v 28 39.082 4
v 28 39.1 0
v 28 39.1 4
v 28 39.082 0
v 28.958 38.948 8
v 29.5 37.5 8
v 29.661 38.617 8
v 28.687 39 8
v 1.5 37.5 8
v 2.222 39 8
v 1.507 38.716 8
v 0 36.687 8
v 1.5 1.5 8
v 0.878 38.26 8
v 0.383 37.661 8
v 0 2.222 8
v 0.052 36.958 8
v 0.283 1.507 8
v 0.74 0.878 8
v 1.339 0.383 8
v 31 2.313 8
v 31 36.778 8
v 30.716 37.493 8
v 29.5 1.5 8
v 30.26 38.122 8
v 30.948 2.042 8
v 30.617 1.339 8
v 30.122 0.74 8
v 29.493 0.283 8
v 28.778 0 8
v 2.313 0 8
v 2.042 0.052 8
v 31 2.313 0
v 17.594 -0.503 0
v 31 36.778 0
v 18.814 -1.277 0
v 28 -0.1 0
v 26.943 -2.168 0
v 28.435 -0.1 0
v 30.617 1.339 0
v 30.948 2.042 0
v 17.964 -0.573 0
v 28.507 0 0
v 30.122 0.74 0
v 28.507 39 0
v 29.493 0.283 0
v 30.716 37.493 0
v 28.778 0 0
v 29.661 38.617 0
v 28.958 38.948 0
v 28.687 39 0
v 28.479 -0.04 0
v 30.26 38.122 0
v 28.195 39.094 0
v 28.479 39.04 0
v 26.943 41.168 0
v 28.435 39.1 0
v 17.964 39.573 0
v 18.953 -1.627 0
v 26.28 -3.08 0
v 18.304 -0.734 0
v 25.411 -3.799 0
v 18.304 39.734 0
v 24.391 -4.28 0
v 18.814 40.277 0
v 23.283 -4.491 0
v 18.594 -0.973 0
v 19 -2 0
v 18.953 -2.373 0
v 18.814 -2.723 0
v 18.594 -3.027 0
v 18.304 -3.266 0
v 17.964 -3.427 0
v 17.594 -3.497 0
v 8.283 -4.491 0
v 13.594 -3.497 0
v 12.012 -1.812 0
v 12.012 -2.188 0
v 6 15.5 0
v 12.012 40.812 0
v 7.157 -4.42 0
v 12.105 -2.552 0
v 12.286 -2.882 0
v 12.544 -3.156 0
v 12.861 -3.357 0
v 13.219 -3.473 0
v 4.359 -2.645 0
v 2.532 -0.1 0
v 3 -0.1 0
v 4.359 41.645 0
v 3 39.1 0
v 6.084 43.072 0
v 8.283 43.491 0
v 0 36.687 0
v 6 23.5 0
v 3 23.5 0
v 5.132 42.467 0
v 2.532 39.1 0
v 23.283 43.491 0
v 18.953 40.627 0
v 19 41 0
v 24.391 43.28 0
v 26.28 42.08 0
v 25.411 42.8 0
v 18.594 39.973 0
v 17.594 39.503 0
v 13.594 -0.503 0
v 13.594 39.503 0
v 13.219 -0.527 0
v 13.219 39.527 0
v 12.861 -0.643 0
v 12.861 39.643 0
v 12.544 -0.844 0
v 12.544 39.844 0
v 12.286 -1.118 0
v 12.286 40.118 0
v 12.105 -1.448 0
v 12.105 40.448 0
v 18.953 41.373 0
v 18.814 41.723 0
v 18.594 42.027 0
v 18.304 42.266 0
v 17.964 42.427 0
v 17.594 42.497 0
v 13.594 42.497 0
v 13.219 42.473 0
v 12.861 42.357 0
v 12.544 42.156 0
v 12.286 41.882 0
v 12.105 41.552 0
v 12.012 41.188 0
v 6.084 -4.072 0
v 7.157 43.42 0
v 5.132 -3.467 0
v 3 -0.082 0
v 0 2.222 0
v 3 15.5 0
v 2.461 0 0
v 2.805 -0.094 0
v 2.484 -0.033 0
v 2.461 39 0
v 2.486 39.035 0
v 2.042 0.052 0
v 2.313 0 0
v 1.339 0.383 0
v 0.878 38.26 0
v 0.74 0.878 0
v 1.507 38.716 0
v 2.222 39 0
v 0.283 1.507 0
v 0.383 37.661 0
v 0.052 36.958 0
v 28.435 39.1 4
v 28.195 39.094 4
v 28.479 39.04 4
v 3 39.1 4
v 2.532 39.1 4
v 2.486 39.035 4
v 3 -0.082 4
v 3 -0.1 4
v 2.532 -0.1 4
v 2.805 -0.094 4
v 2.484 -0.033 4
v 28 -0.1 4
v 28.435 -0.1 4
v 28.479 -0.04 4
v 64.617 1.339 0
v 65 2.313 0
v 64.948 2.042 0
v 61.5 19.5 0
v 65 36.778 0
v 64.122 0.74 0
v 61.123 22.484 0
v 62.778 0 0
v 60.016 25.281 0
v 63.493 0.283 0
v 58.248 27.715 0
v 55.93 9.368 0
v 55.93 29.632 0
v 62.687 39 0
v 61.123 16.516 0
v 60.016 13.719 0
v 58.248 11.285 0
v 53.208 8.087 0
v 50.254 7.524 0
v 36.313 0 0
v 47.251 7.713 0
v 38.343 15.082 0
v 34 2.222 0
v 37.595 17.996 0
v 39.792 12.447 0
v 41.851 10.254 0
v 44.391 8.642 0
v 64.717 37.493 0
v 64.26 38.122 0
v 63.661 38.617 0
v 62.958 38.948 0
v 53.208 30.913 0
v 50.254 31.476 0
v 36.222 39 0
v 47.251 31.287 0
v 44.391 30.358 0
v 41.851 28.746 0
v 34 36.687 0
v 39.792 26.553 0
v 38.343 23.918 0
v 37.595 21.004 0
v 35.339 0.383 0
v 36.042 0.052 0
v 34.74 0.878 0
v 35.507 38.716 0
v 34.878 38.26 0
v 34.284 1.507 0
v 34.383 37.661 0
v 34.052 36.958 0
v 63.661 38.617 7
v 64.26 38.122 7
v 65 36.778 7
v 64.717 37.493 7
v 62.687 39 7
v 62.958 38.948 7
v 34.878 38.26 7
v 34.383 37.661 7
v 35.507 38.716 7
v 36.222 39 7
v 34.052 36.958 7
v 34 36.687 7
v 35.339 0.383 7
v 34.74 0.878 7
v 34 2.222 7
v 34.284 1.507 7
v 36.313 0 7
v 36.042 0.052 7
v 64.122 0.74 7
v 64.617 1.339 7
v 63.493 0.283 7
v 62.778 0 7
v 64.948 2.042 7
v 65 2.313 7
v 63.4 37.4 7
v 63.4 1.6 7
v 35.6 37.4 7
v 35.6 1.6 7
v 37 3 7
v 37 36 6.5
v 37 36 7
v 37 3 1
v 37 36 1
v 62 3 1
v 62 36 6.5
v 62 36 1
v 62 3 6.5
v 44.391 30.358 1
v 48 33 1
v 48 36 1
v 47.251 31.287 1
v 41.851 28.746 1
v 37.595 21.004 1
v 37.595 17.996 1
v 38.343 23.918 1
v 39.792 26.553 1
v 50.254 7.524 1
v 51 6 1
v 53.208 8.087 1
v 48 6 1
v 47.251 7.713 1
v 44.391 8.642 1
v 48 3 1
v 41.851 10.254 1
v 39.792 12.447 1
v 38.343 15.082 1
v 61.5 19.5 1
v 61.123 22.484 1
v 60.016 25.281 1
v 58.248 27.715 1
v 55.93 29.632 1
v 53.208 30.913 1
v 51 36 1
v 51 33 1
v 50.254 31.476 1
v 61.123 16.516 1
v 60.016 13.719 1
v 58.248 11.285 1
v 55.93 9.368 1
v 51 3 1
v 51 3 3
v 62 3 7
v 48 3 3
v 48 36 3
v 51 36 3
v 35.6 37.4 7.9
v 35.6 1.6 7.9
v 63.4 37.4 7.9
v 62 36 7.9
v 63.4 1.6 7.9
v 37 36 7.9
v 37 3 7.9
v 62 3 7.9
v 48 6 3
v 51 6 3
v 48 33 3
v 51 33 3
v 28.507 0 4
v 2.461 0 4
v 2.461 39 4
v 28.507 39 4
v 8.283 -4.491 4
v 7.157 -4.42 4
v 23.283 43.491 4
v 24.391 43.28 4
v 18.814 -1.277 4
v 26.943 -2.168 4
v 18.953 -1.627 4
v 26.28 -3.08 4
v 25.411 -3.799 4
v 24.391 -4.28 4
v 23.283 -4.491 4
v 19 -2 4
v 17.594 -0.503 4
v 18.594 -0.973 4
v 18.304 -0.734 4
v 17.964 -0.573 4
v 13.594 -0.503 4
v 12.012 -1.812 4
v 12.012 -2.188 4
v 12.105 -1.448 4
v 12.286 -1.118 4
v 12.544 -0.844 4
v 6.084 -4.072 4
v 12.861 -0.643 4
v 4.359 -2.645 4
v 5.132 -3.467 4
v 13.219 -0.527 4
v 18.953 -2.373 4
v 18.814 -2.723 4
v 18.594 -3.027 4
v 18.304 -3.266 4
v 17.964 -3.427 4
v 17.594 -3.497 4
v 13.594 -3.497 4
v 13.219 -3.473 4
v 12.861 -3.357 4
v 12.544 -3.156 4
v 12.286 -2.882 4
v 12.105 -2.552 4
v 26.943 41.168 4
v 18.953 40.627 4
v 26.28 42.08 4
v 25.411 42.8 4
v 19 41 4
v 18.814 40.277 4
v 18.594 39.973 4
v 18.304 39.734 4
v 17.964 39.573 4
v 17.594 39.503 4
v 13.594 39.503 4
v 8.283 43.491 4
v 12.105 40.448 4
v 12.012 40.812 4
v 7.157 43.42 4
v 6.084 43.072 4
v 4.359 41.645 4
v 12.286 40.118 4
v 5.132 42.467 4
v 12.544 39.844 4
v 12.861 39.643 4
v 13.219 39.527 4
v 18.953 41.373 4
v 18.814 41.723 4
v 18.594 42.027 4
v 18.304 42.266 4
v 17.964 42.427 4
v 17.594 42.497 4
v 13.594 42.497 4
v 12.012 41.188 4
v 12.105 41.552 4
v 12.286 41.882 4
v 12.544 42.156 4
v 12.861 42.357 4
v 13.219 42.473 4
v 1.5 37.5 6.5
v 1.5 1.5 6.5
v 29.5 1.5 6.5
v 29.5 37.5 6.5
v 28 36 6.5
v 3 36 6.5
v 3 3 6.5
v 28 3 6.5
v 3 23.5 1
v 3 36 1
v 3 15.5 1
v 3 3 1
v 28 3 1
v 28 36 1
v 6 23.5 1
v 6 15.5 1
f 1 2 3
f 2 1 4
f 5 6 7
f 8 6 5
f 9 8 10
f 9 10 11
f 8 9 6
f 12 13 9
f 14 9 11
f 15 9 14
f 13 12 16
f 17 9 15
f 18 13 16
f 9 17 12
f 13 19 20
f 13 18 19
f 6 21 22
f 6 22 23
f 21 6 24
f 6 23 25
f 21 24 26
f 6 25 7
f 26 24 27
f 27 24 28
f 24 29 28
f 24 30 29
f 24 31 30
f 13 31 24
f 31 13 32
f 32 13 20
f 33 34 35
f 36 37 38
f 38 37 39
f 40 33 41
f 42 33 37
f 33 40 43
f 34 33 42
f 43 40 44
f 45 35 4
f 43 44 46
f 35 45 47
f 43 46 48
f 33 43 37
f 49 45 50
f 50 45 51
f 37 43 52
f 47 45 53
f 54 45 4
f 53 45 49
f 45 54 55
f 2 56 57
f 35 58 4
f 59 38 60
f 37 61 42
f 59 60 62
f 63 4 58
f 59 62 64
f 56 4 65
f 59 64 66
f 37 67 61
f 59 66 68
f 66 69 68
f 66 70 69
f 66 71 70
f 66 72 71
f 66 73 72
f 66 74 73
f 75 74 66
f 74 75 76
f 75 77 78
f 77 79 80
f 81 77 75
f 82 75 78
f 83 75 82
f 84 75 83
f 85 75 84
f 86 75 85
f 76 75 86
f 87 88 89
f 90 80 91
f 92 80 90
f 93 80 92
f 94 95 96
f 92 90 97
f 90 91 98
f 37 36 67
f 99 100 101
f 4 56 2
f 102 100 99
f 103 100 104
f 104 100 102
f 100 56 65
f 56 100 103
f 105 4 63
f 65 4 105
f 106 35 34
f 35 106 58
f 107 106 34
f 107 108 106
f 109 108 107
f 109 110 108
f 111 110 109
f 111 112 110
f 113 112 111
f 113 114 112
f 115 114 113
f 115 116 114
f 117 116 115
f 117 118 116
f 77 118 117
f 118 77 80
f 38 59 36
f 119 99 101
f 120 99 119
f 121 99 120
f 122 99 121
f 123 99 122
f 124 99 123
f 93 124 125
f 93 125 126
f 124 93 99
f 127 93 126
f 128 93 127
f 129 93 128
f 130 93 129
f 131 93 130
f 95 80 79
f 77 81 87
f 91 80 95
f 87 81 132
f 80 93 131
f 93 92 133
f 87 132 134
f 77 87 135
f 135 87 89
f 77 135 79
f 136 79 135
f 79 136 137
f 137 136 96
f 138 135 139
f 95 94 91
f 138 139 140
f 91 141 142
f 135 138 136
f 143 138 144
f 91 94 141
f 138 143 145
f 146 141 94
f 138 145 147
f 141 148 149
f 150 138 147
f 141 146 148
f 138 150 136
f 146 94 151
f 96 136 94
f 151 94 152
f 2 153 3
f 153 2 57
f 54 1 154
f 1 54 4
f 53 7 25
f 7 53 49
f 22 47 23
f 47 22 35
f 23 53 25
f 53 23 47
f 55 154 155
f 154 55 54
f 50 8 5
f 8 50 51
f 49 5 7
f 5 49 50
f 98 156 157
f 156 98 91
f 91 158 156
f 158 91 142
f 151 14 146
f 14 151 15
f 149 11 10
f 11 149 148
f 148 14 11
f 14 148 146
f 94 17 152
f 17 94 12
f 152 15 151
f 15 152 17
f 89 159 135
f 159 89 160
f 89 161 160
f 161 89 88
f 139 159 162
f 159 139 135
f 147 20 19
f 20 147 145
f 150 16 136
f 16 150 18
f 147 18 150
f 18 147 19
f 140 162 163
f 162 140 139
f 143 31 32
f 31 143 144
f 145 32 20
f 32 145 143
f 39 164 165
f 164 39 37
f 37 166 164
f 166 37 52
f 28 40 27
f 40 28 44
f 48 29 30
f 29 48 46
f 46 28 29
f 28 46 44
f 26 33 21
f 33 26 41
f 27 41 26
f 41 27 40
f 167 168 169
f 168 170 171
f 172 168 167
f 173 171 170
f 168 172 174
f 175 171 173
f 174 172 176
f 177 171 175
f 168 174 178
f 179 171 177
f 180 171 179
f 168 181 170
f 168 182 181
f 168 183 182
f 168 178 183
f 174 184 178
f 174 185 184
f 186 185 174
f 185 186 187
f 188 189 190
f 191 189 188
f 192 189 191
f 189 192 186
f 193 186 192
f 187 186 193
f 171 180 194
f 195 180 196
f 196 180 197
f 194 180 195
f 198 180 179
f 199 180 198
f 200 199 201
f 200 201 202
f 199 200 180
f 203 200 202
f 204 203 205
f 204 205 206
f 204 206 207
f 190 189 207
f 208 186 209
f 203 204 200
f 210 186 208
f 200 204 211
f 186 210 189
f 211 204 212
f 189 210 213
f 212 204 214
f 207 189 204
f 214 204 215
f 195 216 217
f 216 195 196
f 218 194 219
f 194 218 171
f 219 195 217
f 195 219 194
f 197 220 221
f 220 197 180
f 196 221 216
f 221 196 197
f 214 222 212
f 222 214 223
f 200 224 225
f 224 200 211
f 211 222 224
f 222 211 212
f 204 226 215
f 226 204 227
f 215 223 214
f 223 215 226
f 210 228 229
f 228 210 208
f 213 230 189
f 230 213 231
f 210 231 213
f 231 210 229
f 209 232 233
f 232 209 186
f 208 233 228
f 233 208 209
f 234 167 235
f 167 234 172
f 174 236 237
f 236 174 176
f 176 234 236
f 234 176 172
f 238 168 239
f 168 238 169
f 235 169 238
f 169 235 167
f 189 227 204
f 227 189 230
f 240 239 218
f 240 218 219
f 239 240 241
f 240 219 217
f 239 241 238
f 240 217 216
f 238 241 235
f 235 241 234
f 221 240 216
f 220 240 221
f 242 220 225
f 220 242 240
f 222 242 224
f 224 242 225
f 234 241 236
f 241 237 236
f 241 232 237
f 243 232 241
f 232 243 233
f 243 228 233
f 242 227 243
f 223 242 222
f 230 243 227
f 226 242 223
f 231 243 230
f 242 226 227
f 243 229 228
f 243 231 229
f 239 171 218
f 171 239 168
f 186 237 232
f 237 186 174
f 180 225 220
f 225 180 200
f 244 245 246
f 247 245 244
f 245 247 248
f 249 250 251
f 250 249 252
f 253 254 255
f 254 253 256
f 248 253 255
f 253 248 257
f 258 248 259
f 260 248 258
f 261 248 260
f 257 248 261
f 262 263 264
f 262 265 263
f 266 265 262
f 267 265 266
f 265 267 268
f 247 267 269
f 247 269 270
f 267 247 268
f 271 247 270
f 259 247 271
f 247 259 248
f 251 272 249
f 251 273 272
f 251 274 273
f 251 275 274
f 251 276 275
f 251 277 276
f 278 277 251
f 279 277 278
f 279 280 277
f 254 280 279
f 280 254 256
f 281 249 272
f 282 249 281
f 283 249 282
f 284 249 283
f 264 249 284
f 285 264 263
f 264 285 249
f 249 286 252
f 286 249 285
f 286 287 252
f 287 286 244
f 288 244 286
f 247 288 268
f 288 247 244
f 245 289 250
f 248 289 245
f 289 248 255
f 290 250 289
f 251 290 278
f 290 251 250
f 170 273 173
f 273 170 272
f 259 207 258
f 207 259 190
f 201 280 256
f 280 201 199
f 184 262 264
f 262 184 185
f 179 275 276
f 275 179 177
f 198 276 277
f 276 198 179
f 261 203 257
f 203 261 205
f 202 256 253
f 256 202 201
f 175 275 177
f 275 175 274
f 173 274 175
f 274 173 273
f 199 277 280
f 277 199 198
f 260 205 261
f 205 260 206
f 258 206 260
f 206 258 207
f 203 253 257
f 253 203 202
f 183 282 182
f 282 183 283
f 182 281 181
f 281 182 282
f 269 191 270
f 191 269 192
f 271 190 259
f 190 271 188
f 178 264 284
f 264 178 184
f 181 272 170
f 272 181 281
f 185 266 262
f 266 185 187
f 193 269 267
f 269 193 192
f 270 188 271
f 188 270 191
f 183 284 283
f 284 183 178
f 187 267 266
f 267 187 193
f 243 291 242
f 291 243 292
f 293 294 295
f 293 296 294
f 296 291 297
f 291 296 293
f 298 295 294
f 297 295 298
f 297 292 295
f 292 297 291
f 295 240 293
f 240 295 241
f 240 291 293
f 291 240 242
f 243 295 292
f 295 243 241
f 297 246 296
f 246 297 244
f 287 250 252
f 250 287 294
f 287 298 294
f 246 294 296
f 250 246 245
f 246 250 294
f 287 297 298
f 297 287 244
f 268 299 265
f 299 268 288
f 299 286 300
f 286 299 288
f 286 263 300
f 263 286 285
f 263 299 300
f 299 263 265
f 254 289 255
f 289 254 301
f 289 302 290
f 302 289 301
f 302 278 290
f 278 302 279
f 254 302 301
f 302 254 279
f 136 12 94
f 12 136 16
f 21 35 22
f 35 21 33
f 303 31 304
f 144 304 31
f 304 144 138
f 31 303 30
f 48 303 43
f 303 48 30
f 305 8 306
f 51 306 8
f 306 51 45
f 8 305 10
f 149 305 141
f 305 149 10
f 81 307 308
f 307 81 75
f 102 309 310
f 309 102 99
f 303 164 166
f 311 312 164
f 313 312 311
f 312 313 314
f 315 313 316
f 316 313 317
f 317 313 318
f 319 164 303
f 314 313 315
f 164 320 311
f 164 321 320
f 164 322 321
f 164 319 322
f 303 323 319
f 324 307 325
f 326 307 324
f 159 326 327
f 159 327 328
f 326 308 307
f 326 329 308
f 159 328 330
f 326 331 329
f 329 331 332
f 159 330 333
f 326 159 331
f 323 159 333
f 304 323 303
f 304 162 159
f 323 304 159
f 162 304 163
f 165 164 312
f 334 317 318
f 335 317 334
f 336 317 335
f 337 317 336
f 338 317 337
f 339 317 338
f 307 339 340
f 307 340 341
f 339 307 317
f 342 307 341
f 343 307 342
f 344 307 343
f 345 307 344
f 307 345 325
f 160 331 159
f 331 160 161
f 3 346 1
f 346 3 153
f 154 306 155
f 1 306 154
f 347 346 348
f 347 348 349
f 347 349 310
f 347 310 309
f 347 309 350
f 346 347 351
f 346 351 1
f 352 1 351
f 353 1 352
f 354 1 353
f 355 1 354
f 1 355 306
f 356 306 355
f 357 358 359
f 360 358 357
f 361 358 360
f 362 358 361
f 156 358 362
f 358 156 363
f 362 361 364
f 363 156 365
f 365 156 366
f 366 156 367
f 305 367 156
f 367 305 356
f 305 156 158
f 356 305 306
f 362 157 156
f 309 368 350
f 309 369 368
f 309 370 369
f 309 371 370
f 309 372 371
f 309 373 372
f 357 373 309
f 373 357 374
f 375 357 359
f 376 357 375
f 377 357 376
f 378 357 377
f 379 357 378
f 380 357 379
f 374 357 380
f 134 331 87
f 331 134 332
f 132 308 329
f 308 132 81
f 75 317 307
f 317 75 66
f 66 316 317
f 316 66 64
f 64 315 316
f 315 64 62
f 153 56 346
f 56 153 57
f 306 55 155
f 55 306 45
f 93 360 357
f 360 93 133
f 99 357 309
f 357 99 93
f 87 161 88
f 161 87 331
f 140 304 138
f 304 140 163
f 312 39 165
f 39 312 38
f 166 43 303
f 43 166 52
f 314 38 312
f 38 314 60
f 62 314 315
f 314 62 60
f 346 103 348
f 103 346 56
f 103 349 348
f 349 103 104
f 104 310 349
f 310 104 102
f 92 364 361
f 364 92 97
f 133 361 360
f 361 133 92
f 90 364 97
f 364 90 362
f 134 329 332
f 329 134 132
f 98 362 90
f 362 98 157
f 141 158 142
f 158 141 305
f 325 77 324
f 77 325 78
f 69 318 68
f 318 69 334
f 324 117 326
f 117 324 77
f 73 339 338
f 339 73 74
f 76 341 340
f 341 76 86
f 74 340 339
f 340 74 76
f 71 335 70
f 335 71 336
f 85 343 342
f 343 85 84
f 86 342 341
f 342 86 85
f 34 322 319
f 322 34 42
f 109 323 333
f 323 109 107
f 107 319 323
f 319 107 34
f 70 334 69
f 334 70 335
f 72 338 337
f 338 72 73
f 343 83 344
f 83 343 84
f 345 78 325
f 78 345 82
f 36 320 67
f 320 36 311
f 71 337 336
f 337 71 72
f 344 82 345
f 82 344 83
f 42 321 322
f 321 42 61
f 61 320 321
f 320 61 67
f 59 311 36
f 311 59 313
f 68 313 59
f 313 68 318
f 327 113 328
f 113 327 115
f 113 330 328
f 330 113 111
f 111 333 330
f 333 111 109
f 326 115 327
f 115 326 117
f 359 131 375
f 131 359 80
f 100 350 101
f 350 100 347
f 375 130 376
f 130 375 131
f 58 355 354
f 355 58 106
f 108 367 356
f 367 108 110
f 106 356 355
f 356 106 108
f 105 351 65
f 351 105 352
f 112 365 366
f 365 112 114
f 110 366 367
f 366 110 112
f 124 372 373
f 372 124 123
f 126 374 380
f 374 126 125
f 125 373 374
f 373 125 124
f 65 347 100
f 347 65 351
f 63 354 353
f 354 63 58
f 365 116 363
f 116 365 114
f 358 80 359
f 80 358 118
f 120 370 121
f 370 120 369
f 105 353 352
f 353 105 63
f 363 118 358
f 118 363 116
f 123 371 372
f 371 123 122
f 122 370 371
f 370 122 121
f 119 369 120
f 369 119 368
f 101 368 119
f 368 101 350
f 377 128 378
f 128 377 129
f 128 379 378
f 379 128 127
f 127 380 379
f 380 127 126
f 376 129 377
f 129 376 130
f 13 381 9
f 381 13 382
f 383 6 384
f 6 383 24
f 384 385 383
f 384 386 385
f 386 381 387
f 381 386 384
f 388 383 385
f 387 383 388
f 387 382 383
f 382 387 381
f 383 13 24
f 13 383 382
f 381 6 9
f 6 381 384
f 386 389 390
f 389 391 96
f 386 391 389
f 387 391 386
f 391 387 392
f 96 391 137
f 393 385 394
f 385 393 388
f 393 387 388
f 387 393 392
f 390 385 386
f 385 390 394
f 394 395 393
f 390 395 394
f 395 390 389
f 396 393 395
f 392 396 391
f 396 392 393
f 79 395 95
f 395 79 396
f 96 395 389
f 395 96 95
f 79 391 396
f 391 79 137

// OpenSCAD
// 2 piece case for PIR sensor SR501
// PCB volume size 33x25x14
// created by jegb 2014
// CC BY-NC-SA-3.0

wall_size = 3;
w = 25;
d = 33;
h = 8; //block material size, my stock is 8mm PE or Acrylic
pcb_h = 14/2; //this is the volume inside of each half
// assumes a wall on top/bottom of 1mm

gap= 3;
rad = 3; // soften edges

//show assembled
assy = false;
ears = true;
has_slot=true;

dxf=false;

module lip(l_h,l_w){
// to be differenced from the main body
	difference(){
		cube([w+2*l_w,d+2*l_w,l_h], center=false);
		translate([l_w,l_w,0]) cube([w,d,l_h], center=false);
	}

} //lip(1.5, 1.5);

module createSubtractor(h,radius) {
	difference(){ 
	cube([radius+0.1,radius+0.1,h]); 
	cylinder(h=h,r=radius+0.1,$fn = 25);
	} //+0.1 stops ghost edges
}

module slot(slot_l){ 
	hull(){ //slot
		translate([rad,0,0]) cylinder(h=h, r=rad/2, $fn=25);
		translate([slot_l-rad,0,0]) cylinder(h=h, r=rad/2, $fn=25);
	} // hull inside
} //slot(3, 15);

module ears(sep, ear_w, ear_l){ //sep is distance between ears
   hull(){
	hull(){
		cylinder(h=h/2, r=ear_w/2, $fn=25);
		translate([ear_l,0,0]) cylinder(h=h/2, r=ear_w/2, $fn=25);
	} // hull1

	translate([0,wall_size,0]) hull(){
		translate([-(w-ear_l-2*wall_size),0,0]) cylinder(h=h/2, r=rad/2+wall_size/2, $fn=25);
		translate([w-2*wall_size,0,0]) cylinder(h=h/2, r=rad/2+wall_size/2, $fn=25);
	} // hull2

	translate([0,d+wall_size,0]) hull(){
		translate([-(w-ear_l-2*wall_size),0,0]) cylinder(h=h/2, r=rad/2+wall_size/2, $fn=25);
		translate([w-2*wall_size,0,0]) cylinder(h=h/2, r=rad/2+wall_size/2, $fn=25);
	} // hull3

	translate([0,d+2*wall_size,0]) hull(){
		cylinder(h=h/2, r=ear_w/2, $fn=25);
		translate([ear_l,0,0]) cylinder(h=h/2, r=ear_w/2, $fn=25);
	} // hull4

	}
} //ears(d, 7, 15);


// bottom B side
module case_b(){

	difference(){
		union(){
		cube ([w+2*wall_size,d+2*wall_size,h], center =false);
		if(ears==true) translate([wall_size+w/2-15/2,0]) ears(d,9,15);
		}
		translate ([wall_size,wall_size,h-pcb_h]) cube ([w,d,pcb_h+0.1], center =false);

// rounding corners
		translate([w+2*wall_size-rad,d+2*wall_size-rad]) rotate(0) createSubtractor(h,rad); 
		translate([rad,d+2*wall_size-rad]) rotate(90) createSubtractor(h,rad);
		translate([rad,rad]) rotate(180) createSubtractor(h,rad);
		translate([w+2*wall_size-rad,rad]) rotate(270) createSubtractor(h,rad);

// pass-through dupont plug 8x3x6
		translate([wall_size+3/2,(2*wall_size+d)/2,0]) cube ([3,8,6], center =true); 

// 4xscrews 1.6mm dia (to do)
//		translate([wall_size/2+0.4,wall_size/2+0.4,h/2]) cylinder(h=h, r=0.8, $fn=25);

	if(has_slot==true) {
		translate([(w+2*wall_size)/2-10/2,-((9-wall_size)/2-1),0]) slot(10);
		translate([(w+2*wall_size)/2-10/2,d+2*wall_size+((9-wall_size)/2-1),0]) slot(10);
	}

//1.5mm lip
	translate([wall_size-1.5, wall_size-1.5,h-1.5]) lip(1.5,1.5);

	}// difference

} //color ("orange") case_b();


// top side
module case_a(){
	union(){
		difference(){
			cube ([w+2*wall_size,d+2*wall_size,h-1], center =false); //h -lip size
			translate ([wall_size,wall_size,1]) cube ([w,d,pcb_h+0.1], center =false);

		// rounding corners
		translate([w+2*wall_size-rad,d+2*wall_size-rad]) rotate(0) createSubtractor(h,rad); 
		translate([rad,d+2*wall_size-rad]) rotate(90) createSubtractor(h,rad);
		translate([rad,rad]) rotate(180) createSubtractor(h,rad);
		translate([w+2*wall_size-rad,rad]) rotate(270) createSubtractor(h,rad);

// pass-through sensor dia 24
		translate([wall_size+w/2, wall_size+d/2, 0]) cylinder(h=wall_size, r=24/2,$fn=25);

	}// difference

  //2x stand-offs for PCB support 3x3x3
	 translate([wall_size+w/2,wall_size+3/2,2]) cube([3,3,2], center =true);
	 translate([wall_size+w/2,wall_size+d-3/2,2]) cube([3,3,2], center =true);

//counter lip 1.5mm
	translate([wall_size-1.4, wall_size-1.4,h-1.5]) lip(1.4,1.4);
	
} //union

} //color ("red") case_a();



// render in assembled form
if(assy==true && dxf==false) {
	translate([w+2*wall_size,0,2*h]) rotate (a=180, v=[0,1,0]) color ("red") case_a(); 
	case_b();
}


//dxf render

if(dxf==true){
	projection (cut=true) translate([w+2*wall_size+gap,0, -6.5]) case_a();
	projection (cut=true) translate ([0,0,-6.5]) case_b();
}

translate([w+2*wall_size+gap,0, 0]) color ("red") case_a	();
case_b();
